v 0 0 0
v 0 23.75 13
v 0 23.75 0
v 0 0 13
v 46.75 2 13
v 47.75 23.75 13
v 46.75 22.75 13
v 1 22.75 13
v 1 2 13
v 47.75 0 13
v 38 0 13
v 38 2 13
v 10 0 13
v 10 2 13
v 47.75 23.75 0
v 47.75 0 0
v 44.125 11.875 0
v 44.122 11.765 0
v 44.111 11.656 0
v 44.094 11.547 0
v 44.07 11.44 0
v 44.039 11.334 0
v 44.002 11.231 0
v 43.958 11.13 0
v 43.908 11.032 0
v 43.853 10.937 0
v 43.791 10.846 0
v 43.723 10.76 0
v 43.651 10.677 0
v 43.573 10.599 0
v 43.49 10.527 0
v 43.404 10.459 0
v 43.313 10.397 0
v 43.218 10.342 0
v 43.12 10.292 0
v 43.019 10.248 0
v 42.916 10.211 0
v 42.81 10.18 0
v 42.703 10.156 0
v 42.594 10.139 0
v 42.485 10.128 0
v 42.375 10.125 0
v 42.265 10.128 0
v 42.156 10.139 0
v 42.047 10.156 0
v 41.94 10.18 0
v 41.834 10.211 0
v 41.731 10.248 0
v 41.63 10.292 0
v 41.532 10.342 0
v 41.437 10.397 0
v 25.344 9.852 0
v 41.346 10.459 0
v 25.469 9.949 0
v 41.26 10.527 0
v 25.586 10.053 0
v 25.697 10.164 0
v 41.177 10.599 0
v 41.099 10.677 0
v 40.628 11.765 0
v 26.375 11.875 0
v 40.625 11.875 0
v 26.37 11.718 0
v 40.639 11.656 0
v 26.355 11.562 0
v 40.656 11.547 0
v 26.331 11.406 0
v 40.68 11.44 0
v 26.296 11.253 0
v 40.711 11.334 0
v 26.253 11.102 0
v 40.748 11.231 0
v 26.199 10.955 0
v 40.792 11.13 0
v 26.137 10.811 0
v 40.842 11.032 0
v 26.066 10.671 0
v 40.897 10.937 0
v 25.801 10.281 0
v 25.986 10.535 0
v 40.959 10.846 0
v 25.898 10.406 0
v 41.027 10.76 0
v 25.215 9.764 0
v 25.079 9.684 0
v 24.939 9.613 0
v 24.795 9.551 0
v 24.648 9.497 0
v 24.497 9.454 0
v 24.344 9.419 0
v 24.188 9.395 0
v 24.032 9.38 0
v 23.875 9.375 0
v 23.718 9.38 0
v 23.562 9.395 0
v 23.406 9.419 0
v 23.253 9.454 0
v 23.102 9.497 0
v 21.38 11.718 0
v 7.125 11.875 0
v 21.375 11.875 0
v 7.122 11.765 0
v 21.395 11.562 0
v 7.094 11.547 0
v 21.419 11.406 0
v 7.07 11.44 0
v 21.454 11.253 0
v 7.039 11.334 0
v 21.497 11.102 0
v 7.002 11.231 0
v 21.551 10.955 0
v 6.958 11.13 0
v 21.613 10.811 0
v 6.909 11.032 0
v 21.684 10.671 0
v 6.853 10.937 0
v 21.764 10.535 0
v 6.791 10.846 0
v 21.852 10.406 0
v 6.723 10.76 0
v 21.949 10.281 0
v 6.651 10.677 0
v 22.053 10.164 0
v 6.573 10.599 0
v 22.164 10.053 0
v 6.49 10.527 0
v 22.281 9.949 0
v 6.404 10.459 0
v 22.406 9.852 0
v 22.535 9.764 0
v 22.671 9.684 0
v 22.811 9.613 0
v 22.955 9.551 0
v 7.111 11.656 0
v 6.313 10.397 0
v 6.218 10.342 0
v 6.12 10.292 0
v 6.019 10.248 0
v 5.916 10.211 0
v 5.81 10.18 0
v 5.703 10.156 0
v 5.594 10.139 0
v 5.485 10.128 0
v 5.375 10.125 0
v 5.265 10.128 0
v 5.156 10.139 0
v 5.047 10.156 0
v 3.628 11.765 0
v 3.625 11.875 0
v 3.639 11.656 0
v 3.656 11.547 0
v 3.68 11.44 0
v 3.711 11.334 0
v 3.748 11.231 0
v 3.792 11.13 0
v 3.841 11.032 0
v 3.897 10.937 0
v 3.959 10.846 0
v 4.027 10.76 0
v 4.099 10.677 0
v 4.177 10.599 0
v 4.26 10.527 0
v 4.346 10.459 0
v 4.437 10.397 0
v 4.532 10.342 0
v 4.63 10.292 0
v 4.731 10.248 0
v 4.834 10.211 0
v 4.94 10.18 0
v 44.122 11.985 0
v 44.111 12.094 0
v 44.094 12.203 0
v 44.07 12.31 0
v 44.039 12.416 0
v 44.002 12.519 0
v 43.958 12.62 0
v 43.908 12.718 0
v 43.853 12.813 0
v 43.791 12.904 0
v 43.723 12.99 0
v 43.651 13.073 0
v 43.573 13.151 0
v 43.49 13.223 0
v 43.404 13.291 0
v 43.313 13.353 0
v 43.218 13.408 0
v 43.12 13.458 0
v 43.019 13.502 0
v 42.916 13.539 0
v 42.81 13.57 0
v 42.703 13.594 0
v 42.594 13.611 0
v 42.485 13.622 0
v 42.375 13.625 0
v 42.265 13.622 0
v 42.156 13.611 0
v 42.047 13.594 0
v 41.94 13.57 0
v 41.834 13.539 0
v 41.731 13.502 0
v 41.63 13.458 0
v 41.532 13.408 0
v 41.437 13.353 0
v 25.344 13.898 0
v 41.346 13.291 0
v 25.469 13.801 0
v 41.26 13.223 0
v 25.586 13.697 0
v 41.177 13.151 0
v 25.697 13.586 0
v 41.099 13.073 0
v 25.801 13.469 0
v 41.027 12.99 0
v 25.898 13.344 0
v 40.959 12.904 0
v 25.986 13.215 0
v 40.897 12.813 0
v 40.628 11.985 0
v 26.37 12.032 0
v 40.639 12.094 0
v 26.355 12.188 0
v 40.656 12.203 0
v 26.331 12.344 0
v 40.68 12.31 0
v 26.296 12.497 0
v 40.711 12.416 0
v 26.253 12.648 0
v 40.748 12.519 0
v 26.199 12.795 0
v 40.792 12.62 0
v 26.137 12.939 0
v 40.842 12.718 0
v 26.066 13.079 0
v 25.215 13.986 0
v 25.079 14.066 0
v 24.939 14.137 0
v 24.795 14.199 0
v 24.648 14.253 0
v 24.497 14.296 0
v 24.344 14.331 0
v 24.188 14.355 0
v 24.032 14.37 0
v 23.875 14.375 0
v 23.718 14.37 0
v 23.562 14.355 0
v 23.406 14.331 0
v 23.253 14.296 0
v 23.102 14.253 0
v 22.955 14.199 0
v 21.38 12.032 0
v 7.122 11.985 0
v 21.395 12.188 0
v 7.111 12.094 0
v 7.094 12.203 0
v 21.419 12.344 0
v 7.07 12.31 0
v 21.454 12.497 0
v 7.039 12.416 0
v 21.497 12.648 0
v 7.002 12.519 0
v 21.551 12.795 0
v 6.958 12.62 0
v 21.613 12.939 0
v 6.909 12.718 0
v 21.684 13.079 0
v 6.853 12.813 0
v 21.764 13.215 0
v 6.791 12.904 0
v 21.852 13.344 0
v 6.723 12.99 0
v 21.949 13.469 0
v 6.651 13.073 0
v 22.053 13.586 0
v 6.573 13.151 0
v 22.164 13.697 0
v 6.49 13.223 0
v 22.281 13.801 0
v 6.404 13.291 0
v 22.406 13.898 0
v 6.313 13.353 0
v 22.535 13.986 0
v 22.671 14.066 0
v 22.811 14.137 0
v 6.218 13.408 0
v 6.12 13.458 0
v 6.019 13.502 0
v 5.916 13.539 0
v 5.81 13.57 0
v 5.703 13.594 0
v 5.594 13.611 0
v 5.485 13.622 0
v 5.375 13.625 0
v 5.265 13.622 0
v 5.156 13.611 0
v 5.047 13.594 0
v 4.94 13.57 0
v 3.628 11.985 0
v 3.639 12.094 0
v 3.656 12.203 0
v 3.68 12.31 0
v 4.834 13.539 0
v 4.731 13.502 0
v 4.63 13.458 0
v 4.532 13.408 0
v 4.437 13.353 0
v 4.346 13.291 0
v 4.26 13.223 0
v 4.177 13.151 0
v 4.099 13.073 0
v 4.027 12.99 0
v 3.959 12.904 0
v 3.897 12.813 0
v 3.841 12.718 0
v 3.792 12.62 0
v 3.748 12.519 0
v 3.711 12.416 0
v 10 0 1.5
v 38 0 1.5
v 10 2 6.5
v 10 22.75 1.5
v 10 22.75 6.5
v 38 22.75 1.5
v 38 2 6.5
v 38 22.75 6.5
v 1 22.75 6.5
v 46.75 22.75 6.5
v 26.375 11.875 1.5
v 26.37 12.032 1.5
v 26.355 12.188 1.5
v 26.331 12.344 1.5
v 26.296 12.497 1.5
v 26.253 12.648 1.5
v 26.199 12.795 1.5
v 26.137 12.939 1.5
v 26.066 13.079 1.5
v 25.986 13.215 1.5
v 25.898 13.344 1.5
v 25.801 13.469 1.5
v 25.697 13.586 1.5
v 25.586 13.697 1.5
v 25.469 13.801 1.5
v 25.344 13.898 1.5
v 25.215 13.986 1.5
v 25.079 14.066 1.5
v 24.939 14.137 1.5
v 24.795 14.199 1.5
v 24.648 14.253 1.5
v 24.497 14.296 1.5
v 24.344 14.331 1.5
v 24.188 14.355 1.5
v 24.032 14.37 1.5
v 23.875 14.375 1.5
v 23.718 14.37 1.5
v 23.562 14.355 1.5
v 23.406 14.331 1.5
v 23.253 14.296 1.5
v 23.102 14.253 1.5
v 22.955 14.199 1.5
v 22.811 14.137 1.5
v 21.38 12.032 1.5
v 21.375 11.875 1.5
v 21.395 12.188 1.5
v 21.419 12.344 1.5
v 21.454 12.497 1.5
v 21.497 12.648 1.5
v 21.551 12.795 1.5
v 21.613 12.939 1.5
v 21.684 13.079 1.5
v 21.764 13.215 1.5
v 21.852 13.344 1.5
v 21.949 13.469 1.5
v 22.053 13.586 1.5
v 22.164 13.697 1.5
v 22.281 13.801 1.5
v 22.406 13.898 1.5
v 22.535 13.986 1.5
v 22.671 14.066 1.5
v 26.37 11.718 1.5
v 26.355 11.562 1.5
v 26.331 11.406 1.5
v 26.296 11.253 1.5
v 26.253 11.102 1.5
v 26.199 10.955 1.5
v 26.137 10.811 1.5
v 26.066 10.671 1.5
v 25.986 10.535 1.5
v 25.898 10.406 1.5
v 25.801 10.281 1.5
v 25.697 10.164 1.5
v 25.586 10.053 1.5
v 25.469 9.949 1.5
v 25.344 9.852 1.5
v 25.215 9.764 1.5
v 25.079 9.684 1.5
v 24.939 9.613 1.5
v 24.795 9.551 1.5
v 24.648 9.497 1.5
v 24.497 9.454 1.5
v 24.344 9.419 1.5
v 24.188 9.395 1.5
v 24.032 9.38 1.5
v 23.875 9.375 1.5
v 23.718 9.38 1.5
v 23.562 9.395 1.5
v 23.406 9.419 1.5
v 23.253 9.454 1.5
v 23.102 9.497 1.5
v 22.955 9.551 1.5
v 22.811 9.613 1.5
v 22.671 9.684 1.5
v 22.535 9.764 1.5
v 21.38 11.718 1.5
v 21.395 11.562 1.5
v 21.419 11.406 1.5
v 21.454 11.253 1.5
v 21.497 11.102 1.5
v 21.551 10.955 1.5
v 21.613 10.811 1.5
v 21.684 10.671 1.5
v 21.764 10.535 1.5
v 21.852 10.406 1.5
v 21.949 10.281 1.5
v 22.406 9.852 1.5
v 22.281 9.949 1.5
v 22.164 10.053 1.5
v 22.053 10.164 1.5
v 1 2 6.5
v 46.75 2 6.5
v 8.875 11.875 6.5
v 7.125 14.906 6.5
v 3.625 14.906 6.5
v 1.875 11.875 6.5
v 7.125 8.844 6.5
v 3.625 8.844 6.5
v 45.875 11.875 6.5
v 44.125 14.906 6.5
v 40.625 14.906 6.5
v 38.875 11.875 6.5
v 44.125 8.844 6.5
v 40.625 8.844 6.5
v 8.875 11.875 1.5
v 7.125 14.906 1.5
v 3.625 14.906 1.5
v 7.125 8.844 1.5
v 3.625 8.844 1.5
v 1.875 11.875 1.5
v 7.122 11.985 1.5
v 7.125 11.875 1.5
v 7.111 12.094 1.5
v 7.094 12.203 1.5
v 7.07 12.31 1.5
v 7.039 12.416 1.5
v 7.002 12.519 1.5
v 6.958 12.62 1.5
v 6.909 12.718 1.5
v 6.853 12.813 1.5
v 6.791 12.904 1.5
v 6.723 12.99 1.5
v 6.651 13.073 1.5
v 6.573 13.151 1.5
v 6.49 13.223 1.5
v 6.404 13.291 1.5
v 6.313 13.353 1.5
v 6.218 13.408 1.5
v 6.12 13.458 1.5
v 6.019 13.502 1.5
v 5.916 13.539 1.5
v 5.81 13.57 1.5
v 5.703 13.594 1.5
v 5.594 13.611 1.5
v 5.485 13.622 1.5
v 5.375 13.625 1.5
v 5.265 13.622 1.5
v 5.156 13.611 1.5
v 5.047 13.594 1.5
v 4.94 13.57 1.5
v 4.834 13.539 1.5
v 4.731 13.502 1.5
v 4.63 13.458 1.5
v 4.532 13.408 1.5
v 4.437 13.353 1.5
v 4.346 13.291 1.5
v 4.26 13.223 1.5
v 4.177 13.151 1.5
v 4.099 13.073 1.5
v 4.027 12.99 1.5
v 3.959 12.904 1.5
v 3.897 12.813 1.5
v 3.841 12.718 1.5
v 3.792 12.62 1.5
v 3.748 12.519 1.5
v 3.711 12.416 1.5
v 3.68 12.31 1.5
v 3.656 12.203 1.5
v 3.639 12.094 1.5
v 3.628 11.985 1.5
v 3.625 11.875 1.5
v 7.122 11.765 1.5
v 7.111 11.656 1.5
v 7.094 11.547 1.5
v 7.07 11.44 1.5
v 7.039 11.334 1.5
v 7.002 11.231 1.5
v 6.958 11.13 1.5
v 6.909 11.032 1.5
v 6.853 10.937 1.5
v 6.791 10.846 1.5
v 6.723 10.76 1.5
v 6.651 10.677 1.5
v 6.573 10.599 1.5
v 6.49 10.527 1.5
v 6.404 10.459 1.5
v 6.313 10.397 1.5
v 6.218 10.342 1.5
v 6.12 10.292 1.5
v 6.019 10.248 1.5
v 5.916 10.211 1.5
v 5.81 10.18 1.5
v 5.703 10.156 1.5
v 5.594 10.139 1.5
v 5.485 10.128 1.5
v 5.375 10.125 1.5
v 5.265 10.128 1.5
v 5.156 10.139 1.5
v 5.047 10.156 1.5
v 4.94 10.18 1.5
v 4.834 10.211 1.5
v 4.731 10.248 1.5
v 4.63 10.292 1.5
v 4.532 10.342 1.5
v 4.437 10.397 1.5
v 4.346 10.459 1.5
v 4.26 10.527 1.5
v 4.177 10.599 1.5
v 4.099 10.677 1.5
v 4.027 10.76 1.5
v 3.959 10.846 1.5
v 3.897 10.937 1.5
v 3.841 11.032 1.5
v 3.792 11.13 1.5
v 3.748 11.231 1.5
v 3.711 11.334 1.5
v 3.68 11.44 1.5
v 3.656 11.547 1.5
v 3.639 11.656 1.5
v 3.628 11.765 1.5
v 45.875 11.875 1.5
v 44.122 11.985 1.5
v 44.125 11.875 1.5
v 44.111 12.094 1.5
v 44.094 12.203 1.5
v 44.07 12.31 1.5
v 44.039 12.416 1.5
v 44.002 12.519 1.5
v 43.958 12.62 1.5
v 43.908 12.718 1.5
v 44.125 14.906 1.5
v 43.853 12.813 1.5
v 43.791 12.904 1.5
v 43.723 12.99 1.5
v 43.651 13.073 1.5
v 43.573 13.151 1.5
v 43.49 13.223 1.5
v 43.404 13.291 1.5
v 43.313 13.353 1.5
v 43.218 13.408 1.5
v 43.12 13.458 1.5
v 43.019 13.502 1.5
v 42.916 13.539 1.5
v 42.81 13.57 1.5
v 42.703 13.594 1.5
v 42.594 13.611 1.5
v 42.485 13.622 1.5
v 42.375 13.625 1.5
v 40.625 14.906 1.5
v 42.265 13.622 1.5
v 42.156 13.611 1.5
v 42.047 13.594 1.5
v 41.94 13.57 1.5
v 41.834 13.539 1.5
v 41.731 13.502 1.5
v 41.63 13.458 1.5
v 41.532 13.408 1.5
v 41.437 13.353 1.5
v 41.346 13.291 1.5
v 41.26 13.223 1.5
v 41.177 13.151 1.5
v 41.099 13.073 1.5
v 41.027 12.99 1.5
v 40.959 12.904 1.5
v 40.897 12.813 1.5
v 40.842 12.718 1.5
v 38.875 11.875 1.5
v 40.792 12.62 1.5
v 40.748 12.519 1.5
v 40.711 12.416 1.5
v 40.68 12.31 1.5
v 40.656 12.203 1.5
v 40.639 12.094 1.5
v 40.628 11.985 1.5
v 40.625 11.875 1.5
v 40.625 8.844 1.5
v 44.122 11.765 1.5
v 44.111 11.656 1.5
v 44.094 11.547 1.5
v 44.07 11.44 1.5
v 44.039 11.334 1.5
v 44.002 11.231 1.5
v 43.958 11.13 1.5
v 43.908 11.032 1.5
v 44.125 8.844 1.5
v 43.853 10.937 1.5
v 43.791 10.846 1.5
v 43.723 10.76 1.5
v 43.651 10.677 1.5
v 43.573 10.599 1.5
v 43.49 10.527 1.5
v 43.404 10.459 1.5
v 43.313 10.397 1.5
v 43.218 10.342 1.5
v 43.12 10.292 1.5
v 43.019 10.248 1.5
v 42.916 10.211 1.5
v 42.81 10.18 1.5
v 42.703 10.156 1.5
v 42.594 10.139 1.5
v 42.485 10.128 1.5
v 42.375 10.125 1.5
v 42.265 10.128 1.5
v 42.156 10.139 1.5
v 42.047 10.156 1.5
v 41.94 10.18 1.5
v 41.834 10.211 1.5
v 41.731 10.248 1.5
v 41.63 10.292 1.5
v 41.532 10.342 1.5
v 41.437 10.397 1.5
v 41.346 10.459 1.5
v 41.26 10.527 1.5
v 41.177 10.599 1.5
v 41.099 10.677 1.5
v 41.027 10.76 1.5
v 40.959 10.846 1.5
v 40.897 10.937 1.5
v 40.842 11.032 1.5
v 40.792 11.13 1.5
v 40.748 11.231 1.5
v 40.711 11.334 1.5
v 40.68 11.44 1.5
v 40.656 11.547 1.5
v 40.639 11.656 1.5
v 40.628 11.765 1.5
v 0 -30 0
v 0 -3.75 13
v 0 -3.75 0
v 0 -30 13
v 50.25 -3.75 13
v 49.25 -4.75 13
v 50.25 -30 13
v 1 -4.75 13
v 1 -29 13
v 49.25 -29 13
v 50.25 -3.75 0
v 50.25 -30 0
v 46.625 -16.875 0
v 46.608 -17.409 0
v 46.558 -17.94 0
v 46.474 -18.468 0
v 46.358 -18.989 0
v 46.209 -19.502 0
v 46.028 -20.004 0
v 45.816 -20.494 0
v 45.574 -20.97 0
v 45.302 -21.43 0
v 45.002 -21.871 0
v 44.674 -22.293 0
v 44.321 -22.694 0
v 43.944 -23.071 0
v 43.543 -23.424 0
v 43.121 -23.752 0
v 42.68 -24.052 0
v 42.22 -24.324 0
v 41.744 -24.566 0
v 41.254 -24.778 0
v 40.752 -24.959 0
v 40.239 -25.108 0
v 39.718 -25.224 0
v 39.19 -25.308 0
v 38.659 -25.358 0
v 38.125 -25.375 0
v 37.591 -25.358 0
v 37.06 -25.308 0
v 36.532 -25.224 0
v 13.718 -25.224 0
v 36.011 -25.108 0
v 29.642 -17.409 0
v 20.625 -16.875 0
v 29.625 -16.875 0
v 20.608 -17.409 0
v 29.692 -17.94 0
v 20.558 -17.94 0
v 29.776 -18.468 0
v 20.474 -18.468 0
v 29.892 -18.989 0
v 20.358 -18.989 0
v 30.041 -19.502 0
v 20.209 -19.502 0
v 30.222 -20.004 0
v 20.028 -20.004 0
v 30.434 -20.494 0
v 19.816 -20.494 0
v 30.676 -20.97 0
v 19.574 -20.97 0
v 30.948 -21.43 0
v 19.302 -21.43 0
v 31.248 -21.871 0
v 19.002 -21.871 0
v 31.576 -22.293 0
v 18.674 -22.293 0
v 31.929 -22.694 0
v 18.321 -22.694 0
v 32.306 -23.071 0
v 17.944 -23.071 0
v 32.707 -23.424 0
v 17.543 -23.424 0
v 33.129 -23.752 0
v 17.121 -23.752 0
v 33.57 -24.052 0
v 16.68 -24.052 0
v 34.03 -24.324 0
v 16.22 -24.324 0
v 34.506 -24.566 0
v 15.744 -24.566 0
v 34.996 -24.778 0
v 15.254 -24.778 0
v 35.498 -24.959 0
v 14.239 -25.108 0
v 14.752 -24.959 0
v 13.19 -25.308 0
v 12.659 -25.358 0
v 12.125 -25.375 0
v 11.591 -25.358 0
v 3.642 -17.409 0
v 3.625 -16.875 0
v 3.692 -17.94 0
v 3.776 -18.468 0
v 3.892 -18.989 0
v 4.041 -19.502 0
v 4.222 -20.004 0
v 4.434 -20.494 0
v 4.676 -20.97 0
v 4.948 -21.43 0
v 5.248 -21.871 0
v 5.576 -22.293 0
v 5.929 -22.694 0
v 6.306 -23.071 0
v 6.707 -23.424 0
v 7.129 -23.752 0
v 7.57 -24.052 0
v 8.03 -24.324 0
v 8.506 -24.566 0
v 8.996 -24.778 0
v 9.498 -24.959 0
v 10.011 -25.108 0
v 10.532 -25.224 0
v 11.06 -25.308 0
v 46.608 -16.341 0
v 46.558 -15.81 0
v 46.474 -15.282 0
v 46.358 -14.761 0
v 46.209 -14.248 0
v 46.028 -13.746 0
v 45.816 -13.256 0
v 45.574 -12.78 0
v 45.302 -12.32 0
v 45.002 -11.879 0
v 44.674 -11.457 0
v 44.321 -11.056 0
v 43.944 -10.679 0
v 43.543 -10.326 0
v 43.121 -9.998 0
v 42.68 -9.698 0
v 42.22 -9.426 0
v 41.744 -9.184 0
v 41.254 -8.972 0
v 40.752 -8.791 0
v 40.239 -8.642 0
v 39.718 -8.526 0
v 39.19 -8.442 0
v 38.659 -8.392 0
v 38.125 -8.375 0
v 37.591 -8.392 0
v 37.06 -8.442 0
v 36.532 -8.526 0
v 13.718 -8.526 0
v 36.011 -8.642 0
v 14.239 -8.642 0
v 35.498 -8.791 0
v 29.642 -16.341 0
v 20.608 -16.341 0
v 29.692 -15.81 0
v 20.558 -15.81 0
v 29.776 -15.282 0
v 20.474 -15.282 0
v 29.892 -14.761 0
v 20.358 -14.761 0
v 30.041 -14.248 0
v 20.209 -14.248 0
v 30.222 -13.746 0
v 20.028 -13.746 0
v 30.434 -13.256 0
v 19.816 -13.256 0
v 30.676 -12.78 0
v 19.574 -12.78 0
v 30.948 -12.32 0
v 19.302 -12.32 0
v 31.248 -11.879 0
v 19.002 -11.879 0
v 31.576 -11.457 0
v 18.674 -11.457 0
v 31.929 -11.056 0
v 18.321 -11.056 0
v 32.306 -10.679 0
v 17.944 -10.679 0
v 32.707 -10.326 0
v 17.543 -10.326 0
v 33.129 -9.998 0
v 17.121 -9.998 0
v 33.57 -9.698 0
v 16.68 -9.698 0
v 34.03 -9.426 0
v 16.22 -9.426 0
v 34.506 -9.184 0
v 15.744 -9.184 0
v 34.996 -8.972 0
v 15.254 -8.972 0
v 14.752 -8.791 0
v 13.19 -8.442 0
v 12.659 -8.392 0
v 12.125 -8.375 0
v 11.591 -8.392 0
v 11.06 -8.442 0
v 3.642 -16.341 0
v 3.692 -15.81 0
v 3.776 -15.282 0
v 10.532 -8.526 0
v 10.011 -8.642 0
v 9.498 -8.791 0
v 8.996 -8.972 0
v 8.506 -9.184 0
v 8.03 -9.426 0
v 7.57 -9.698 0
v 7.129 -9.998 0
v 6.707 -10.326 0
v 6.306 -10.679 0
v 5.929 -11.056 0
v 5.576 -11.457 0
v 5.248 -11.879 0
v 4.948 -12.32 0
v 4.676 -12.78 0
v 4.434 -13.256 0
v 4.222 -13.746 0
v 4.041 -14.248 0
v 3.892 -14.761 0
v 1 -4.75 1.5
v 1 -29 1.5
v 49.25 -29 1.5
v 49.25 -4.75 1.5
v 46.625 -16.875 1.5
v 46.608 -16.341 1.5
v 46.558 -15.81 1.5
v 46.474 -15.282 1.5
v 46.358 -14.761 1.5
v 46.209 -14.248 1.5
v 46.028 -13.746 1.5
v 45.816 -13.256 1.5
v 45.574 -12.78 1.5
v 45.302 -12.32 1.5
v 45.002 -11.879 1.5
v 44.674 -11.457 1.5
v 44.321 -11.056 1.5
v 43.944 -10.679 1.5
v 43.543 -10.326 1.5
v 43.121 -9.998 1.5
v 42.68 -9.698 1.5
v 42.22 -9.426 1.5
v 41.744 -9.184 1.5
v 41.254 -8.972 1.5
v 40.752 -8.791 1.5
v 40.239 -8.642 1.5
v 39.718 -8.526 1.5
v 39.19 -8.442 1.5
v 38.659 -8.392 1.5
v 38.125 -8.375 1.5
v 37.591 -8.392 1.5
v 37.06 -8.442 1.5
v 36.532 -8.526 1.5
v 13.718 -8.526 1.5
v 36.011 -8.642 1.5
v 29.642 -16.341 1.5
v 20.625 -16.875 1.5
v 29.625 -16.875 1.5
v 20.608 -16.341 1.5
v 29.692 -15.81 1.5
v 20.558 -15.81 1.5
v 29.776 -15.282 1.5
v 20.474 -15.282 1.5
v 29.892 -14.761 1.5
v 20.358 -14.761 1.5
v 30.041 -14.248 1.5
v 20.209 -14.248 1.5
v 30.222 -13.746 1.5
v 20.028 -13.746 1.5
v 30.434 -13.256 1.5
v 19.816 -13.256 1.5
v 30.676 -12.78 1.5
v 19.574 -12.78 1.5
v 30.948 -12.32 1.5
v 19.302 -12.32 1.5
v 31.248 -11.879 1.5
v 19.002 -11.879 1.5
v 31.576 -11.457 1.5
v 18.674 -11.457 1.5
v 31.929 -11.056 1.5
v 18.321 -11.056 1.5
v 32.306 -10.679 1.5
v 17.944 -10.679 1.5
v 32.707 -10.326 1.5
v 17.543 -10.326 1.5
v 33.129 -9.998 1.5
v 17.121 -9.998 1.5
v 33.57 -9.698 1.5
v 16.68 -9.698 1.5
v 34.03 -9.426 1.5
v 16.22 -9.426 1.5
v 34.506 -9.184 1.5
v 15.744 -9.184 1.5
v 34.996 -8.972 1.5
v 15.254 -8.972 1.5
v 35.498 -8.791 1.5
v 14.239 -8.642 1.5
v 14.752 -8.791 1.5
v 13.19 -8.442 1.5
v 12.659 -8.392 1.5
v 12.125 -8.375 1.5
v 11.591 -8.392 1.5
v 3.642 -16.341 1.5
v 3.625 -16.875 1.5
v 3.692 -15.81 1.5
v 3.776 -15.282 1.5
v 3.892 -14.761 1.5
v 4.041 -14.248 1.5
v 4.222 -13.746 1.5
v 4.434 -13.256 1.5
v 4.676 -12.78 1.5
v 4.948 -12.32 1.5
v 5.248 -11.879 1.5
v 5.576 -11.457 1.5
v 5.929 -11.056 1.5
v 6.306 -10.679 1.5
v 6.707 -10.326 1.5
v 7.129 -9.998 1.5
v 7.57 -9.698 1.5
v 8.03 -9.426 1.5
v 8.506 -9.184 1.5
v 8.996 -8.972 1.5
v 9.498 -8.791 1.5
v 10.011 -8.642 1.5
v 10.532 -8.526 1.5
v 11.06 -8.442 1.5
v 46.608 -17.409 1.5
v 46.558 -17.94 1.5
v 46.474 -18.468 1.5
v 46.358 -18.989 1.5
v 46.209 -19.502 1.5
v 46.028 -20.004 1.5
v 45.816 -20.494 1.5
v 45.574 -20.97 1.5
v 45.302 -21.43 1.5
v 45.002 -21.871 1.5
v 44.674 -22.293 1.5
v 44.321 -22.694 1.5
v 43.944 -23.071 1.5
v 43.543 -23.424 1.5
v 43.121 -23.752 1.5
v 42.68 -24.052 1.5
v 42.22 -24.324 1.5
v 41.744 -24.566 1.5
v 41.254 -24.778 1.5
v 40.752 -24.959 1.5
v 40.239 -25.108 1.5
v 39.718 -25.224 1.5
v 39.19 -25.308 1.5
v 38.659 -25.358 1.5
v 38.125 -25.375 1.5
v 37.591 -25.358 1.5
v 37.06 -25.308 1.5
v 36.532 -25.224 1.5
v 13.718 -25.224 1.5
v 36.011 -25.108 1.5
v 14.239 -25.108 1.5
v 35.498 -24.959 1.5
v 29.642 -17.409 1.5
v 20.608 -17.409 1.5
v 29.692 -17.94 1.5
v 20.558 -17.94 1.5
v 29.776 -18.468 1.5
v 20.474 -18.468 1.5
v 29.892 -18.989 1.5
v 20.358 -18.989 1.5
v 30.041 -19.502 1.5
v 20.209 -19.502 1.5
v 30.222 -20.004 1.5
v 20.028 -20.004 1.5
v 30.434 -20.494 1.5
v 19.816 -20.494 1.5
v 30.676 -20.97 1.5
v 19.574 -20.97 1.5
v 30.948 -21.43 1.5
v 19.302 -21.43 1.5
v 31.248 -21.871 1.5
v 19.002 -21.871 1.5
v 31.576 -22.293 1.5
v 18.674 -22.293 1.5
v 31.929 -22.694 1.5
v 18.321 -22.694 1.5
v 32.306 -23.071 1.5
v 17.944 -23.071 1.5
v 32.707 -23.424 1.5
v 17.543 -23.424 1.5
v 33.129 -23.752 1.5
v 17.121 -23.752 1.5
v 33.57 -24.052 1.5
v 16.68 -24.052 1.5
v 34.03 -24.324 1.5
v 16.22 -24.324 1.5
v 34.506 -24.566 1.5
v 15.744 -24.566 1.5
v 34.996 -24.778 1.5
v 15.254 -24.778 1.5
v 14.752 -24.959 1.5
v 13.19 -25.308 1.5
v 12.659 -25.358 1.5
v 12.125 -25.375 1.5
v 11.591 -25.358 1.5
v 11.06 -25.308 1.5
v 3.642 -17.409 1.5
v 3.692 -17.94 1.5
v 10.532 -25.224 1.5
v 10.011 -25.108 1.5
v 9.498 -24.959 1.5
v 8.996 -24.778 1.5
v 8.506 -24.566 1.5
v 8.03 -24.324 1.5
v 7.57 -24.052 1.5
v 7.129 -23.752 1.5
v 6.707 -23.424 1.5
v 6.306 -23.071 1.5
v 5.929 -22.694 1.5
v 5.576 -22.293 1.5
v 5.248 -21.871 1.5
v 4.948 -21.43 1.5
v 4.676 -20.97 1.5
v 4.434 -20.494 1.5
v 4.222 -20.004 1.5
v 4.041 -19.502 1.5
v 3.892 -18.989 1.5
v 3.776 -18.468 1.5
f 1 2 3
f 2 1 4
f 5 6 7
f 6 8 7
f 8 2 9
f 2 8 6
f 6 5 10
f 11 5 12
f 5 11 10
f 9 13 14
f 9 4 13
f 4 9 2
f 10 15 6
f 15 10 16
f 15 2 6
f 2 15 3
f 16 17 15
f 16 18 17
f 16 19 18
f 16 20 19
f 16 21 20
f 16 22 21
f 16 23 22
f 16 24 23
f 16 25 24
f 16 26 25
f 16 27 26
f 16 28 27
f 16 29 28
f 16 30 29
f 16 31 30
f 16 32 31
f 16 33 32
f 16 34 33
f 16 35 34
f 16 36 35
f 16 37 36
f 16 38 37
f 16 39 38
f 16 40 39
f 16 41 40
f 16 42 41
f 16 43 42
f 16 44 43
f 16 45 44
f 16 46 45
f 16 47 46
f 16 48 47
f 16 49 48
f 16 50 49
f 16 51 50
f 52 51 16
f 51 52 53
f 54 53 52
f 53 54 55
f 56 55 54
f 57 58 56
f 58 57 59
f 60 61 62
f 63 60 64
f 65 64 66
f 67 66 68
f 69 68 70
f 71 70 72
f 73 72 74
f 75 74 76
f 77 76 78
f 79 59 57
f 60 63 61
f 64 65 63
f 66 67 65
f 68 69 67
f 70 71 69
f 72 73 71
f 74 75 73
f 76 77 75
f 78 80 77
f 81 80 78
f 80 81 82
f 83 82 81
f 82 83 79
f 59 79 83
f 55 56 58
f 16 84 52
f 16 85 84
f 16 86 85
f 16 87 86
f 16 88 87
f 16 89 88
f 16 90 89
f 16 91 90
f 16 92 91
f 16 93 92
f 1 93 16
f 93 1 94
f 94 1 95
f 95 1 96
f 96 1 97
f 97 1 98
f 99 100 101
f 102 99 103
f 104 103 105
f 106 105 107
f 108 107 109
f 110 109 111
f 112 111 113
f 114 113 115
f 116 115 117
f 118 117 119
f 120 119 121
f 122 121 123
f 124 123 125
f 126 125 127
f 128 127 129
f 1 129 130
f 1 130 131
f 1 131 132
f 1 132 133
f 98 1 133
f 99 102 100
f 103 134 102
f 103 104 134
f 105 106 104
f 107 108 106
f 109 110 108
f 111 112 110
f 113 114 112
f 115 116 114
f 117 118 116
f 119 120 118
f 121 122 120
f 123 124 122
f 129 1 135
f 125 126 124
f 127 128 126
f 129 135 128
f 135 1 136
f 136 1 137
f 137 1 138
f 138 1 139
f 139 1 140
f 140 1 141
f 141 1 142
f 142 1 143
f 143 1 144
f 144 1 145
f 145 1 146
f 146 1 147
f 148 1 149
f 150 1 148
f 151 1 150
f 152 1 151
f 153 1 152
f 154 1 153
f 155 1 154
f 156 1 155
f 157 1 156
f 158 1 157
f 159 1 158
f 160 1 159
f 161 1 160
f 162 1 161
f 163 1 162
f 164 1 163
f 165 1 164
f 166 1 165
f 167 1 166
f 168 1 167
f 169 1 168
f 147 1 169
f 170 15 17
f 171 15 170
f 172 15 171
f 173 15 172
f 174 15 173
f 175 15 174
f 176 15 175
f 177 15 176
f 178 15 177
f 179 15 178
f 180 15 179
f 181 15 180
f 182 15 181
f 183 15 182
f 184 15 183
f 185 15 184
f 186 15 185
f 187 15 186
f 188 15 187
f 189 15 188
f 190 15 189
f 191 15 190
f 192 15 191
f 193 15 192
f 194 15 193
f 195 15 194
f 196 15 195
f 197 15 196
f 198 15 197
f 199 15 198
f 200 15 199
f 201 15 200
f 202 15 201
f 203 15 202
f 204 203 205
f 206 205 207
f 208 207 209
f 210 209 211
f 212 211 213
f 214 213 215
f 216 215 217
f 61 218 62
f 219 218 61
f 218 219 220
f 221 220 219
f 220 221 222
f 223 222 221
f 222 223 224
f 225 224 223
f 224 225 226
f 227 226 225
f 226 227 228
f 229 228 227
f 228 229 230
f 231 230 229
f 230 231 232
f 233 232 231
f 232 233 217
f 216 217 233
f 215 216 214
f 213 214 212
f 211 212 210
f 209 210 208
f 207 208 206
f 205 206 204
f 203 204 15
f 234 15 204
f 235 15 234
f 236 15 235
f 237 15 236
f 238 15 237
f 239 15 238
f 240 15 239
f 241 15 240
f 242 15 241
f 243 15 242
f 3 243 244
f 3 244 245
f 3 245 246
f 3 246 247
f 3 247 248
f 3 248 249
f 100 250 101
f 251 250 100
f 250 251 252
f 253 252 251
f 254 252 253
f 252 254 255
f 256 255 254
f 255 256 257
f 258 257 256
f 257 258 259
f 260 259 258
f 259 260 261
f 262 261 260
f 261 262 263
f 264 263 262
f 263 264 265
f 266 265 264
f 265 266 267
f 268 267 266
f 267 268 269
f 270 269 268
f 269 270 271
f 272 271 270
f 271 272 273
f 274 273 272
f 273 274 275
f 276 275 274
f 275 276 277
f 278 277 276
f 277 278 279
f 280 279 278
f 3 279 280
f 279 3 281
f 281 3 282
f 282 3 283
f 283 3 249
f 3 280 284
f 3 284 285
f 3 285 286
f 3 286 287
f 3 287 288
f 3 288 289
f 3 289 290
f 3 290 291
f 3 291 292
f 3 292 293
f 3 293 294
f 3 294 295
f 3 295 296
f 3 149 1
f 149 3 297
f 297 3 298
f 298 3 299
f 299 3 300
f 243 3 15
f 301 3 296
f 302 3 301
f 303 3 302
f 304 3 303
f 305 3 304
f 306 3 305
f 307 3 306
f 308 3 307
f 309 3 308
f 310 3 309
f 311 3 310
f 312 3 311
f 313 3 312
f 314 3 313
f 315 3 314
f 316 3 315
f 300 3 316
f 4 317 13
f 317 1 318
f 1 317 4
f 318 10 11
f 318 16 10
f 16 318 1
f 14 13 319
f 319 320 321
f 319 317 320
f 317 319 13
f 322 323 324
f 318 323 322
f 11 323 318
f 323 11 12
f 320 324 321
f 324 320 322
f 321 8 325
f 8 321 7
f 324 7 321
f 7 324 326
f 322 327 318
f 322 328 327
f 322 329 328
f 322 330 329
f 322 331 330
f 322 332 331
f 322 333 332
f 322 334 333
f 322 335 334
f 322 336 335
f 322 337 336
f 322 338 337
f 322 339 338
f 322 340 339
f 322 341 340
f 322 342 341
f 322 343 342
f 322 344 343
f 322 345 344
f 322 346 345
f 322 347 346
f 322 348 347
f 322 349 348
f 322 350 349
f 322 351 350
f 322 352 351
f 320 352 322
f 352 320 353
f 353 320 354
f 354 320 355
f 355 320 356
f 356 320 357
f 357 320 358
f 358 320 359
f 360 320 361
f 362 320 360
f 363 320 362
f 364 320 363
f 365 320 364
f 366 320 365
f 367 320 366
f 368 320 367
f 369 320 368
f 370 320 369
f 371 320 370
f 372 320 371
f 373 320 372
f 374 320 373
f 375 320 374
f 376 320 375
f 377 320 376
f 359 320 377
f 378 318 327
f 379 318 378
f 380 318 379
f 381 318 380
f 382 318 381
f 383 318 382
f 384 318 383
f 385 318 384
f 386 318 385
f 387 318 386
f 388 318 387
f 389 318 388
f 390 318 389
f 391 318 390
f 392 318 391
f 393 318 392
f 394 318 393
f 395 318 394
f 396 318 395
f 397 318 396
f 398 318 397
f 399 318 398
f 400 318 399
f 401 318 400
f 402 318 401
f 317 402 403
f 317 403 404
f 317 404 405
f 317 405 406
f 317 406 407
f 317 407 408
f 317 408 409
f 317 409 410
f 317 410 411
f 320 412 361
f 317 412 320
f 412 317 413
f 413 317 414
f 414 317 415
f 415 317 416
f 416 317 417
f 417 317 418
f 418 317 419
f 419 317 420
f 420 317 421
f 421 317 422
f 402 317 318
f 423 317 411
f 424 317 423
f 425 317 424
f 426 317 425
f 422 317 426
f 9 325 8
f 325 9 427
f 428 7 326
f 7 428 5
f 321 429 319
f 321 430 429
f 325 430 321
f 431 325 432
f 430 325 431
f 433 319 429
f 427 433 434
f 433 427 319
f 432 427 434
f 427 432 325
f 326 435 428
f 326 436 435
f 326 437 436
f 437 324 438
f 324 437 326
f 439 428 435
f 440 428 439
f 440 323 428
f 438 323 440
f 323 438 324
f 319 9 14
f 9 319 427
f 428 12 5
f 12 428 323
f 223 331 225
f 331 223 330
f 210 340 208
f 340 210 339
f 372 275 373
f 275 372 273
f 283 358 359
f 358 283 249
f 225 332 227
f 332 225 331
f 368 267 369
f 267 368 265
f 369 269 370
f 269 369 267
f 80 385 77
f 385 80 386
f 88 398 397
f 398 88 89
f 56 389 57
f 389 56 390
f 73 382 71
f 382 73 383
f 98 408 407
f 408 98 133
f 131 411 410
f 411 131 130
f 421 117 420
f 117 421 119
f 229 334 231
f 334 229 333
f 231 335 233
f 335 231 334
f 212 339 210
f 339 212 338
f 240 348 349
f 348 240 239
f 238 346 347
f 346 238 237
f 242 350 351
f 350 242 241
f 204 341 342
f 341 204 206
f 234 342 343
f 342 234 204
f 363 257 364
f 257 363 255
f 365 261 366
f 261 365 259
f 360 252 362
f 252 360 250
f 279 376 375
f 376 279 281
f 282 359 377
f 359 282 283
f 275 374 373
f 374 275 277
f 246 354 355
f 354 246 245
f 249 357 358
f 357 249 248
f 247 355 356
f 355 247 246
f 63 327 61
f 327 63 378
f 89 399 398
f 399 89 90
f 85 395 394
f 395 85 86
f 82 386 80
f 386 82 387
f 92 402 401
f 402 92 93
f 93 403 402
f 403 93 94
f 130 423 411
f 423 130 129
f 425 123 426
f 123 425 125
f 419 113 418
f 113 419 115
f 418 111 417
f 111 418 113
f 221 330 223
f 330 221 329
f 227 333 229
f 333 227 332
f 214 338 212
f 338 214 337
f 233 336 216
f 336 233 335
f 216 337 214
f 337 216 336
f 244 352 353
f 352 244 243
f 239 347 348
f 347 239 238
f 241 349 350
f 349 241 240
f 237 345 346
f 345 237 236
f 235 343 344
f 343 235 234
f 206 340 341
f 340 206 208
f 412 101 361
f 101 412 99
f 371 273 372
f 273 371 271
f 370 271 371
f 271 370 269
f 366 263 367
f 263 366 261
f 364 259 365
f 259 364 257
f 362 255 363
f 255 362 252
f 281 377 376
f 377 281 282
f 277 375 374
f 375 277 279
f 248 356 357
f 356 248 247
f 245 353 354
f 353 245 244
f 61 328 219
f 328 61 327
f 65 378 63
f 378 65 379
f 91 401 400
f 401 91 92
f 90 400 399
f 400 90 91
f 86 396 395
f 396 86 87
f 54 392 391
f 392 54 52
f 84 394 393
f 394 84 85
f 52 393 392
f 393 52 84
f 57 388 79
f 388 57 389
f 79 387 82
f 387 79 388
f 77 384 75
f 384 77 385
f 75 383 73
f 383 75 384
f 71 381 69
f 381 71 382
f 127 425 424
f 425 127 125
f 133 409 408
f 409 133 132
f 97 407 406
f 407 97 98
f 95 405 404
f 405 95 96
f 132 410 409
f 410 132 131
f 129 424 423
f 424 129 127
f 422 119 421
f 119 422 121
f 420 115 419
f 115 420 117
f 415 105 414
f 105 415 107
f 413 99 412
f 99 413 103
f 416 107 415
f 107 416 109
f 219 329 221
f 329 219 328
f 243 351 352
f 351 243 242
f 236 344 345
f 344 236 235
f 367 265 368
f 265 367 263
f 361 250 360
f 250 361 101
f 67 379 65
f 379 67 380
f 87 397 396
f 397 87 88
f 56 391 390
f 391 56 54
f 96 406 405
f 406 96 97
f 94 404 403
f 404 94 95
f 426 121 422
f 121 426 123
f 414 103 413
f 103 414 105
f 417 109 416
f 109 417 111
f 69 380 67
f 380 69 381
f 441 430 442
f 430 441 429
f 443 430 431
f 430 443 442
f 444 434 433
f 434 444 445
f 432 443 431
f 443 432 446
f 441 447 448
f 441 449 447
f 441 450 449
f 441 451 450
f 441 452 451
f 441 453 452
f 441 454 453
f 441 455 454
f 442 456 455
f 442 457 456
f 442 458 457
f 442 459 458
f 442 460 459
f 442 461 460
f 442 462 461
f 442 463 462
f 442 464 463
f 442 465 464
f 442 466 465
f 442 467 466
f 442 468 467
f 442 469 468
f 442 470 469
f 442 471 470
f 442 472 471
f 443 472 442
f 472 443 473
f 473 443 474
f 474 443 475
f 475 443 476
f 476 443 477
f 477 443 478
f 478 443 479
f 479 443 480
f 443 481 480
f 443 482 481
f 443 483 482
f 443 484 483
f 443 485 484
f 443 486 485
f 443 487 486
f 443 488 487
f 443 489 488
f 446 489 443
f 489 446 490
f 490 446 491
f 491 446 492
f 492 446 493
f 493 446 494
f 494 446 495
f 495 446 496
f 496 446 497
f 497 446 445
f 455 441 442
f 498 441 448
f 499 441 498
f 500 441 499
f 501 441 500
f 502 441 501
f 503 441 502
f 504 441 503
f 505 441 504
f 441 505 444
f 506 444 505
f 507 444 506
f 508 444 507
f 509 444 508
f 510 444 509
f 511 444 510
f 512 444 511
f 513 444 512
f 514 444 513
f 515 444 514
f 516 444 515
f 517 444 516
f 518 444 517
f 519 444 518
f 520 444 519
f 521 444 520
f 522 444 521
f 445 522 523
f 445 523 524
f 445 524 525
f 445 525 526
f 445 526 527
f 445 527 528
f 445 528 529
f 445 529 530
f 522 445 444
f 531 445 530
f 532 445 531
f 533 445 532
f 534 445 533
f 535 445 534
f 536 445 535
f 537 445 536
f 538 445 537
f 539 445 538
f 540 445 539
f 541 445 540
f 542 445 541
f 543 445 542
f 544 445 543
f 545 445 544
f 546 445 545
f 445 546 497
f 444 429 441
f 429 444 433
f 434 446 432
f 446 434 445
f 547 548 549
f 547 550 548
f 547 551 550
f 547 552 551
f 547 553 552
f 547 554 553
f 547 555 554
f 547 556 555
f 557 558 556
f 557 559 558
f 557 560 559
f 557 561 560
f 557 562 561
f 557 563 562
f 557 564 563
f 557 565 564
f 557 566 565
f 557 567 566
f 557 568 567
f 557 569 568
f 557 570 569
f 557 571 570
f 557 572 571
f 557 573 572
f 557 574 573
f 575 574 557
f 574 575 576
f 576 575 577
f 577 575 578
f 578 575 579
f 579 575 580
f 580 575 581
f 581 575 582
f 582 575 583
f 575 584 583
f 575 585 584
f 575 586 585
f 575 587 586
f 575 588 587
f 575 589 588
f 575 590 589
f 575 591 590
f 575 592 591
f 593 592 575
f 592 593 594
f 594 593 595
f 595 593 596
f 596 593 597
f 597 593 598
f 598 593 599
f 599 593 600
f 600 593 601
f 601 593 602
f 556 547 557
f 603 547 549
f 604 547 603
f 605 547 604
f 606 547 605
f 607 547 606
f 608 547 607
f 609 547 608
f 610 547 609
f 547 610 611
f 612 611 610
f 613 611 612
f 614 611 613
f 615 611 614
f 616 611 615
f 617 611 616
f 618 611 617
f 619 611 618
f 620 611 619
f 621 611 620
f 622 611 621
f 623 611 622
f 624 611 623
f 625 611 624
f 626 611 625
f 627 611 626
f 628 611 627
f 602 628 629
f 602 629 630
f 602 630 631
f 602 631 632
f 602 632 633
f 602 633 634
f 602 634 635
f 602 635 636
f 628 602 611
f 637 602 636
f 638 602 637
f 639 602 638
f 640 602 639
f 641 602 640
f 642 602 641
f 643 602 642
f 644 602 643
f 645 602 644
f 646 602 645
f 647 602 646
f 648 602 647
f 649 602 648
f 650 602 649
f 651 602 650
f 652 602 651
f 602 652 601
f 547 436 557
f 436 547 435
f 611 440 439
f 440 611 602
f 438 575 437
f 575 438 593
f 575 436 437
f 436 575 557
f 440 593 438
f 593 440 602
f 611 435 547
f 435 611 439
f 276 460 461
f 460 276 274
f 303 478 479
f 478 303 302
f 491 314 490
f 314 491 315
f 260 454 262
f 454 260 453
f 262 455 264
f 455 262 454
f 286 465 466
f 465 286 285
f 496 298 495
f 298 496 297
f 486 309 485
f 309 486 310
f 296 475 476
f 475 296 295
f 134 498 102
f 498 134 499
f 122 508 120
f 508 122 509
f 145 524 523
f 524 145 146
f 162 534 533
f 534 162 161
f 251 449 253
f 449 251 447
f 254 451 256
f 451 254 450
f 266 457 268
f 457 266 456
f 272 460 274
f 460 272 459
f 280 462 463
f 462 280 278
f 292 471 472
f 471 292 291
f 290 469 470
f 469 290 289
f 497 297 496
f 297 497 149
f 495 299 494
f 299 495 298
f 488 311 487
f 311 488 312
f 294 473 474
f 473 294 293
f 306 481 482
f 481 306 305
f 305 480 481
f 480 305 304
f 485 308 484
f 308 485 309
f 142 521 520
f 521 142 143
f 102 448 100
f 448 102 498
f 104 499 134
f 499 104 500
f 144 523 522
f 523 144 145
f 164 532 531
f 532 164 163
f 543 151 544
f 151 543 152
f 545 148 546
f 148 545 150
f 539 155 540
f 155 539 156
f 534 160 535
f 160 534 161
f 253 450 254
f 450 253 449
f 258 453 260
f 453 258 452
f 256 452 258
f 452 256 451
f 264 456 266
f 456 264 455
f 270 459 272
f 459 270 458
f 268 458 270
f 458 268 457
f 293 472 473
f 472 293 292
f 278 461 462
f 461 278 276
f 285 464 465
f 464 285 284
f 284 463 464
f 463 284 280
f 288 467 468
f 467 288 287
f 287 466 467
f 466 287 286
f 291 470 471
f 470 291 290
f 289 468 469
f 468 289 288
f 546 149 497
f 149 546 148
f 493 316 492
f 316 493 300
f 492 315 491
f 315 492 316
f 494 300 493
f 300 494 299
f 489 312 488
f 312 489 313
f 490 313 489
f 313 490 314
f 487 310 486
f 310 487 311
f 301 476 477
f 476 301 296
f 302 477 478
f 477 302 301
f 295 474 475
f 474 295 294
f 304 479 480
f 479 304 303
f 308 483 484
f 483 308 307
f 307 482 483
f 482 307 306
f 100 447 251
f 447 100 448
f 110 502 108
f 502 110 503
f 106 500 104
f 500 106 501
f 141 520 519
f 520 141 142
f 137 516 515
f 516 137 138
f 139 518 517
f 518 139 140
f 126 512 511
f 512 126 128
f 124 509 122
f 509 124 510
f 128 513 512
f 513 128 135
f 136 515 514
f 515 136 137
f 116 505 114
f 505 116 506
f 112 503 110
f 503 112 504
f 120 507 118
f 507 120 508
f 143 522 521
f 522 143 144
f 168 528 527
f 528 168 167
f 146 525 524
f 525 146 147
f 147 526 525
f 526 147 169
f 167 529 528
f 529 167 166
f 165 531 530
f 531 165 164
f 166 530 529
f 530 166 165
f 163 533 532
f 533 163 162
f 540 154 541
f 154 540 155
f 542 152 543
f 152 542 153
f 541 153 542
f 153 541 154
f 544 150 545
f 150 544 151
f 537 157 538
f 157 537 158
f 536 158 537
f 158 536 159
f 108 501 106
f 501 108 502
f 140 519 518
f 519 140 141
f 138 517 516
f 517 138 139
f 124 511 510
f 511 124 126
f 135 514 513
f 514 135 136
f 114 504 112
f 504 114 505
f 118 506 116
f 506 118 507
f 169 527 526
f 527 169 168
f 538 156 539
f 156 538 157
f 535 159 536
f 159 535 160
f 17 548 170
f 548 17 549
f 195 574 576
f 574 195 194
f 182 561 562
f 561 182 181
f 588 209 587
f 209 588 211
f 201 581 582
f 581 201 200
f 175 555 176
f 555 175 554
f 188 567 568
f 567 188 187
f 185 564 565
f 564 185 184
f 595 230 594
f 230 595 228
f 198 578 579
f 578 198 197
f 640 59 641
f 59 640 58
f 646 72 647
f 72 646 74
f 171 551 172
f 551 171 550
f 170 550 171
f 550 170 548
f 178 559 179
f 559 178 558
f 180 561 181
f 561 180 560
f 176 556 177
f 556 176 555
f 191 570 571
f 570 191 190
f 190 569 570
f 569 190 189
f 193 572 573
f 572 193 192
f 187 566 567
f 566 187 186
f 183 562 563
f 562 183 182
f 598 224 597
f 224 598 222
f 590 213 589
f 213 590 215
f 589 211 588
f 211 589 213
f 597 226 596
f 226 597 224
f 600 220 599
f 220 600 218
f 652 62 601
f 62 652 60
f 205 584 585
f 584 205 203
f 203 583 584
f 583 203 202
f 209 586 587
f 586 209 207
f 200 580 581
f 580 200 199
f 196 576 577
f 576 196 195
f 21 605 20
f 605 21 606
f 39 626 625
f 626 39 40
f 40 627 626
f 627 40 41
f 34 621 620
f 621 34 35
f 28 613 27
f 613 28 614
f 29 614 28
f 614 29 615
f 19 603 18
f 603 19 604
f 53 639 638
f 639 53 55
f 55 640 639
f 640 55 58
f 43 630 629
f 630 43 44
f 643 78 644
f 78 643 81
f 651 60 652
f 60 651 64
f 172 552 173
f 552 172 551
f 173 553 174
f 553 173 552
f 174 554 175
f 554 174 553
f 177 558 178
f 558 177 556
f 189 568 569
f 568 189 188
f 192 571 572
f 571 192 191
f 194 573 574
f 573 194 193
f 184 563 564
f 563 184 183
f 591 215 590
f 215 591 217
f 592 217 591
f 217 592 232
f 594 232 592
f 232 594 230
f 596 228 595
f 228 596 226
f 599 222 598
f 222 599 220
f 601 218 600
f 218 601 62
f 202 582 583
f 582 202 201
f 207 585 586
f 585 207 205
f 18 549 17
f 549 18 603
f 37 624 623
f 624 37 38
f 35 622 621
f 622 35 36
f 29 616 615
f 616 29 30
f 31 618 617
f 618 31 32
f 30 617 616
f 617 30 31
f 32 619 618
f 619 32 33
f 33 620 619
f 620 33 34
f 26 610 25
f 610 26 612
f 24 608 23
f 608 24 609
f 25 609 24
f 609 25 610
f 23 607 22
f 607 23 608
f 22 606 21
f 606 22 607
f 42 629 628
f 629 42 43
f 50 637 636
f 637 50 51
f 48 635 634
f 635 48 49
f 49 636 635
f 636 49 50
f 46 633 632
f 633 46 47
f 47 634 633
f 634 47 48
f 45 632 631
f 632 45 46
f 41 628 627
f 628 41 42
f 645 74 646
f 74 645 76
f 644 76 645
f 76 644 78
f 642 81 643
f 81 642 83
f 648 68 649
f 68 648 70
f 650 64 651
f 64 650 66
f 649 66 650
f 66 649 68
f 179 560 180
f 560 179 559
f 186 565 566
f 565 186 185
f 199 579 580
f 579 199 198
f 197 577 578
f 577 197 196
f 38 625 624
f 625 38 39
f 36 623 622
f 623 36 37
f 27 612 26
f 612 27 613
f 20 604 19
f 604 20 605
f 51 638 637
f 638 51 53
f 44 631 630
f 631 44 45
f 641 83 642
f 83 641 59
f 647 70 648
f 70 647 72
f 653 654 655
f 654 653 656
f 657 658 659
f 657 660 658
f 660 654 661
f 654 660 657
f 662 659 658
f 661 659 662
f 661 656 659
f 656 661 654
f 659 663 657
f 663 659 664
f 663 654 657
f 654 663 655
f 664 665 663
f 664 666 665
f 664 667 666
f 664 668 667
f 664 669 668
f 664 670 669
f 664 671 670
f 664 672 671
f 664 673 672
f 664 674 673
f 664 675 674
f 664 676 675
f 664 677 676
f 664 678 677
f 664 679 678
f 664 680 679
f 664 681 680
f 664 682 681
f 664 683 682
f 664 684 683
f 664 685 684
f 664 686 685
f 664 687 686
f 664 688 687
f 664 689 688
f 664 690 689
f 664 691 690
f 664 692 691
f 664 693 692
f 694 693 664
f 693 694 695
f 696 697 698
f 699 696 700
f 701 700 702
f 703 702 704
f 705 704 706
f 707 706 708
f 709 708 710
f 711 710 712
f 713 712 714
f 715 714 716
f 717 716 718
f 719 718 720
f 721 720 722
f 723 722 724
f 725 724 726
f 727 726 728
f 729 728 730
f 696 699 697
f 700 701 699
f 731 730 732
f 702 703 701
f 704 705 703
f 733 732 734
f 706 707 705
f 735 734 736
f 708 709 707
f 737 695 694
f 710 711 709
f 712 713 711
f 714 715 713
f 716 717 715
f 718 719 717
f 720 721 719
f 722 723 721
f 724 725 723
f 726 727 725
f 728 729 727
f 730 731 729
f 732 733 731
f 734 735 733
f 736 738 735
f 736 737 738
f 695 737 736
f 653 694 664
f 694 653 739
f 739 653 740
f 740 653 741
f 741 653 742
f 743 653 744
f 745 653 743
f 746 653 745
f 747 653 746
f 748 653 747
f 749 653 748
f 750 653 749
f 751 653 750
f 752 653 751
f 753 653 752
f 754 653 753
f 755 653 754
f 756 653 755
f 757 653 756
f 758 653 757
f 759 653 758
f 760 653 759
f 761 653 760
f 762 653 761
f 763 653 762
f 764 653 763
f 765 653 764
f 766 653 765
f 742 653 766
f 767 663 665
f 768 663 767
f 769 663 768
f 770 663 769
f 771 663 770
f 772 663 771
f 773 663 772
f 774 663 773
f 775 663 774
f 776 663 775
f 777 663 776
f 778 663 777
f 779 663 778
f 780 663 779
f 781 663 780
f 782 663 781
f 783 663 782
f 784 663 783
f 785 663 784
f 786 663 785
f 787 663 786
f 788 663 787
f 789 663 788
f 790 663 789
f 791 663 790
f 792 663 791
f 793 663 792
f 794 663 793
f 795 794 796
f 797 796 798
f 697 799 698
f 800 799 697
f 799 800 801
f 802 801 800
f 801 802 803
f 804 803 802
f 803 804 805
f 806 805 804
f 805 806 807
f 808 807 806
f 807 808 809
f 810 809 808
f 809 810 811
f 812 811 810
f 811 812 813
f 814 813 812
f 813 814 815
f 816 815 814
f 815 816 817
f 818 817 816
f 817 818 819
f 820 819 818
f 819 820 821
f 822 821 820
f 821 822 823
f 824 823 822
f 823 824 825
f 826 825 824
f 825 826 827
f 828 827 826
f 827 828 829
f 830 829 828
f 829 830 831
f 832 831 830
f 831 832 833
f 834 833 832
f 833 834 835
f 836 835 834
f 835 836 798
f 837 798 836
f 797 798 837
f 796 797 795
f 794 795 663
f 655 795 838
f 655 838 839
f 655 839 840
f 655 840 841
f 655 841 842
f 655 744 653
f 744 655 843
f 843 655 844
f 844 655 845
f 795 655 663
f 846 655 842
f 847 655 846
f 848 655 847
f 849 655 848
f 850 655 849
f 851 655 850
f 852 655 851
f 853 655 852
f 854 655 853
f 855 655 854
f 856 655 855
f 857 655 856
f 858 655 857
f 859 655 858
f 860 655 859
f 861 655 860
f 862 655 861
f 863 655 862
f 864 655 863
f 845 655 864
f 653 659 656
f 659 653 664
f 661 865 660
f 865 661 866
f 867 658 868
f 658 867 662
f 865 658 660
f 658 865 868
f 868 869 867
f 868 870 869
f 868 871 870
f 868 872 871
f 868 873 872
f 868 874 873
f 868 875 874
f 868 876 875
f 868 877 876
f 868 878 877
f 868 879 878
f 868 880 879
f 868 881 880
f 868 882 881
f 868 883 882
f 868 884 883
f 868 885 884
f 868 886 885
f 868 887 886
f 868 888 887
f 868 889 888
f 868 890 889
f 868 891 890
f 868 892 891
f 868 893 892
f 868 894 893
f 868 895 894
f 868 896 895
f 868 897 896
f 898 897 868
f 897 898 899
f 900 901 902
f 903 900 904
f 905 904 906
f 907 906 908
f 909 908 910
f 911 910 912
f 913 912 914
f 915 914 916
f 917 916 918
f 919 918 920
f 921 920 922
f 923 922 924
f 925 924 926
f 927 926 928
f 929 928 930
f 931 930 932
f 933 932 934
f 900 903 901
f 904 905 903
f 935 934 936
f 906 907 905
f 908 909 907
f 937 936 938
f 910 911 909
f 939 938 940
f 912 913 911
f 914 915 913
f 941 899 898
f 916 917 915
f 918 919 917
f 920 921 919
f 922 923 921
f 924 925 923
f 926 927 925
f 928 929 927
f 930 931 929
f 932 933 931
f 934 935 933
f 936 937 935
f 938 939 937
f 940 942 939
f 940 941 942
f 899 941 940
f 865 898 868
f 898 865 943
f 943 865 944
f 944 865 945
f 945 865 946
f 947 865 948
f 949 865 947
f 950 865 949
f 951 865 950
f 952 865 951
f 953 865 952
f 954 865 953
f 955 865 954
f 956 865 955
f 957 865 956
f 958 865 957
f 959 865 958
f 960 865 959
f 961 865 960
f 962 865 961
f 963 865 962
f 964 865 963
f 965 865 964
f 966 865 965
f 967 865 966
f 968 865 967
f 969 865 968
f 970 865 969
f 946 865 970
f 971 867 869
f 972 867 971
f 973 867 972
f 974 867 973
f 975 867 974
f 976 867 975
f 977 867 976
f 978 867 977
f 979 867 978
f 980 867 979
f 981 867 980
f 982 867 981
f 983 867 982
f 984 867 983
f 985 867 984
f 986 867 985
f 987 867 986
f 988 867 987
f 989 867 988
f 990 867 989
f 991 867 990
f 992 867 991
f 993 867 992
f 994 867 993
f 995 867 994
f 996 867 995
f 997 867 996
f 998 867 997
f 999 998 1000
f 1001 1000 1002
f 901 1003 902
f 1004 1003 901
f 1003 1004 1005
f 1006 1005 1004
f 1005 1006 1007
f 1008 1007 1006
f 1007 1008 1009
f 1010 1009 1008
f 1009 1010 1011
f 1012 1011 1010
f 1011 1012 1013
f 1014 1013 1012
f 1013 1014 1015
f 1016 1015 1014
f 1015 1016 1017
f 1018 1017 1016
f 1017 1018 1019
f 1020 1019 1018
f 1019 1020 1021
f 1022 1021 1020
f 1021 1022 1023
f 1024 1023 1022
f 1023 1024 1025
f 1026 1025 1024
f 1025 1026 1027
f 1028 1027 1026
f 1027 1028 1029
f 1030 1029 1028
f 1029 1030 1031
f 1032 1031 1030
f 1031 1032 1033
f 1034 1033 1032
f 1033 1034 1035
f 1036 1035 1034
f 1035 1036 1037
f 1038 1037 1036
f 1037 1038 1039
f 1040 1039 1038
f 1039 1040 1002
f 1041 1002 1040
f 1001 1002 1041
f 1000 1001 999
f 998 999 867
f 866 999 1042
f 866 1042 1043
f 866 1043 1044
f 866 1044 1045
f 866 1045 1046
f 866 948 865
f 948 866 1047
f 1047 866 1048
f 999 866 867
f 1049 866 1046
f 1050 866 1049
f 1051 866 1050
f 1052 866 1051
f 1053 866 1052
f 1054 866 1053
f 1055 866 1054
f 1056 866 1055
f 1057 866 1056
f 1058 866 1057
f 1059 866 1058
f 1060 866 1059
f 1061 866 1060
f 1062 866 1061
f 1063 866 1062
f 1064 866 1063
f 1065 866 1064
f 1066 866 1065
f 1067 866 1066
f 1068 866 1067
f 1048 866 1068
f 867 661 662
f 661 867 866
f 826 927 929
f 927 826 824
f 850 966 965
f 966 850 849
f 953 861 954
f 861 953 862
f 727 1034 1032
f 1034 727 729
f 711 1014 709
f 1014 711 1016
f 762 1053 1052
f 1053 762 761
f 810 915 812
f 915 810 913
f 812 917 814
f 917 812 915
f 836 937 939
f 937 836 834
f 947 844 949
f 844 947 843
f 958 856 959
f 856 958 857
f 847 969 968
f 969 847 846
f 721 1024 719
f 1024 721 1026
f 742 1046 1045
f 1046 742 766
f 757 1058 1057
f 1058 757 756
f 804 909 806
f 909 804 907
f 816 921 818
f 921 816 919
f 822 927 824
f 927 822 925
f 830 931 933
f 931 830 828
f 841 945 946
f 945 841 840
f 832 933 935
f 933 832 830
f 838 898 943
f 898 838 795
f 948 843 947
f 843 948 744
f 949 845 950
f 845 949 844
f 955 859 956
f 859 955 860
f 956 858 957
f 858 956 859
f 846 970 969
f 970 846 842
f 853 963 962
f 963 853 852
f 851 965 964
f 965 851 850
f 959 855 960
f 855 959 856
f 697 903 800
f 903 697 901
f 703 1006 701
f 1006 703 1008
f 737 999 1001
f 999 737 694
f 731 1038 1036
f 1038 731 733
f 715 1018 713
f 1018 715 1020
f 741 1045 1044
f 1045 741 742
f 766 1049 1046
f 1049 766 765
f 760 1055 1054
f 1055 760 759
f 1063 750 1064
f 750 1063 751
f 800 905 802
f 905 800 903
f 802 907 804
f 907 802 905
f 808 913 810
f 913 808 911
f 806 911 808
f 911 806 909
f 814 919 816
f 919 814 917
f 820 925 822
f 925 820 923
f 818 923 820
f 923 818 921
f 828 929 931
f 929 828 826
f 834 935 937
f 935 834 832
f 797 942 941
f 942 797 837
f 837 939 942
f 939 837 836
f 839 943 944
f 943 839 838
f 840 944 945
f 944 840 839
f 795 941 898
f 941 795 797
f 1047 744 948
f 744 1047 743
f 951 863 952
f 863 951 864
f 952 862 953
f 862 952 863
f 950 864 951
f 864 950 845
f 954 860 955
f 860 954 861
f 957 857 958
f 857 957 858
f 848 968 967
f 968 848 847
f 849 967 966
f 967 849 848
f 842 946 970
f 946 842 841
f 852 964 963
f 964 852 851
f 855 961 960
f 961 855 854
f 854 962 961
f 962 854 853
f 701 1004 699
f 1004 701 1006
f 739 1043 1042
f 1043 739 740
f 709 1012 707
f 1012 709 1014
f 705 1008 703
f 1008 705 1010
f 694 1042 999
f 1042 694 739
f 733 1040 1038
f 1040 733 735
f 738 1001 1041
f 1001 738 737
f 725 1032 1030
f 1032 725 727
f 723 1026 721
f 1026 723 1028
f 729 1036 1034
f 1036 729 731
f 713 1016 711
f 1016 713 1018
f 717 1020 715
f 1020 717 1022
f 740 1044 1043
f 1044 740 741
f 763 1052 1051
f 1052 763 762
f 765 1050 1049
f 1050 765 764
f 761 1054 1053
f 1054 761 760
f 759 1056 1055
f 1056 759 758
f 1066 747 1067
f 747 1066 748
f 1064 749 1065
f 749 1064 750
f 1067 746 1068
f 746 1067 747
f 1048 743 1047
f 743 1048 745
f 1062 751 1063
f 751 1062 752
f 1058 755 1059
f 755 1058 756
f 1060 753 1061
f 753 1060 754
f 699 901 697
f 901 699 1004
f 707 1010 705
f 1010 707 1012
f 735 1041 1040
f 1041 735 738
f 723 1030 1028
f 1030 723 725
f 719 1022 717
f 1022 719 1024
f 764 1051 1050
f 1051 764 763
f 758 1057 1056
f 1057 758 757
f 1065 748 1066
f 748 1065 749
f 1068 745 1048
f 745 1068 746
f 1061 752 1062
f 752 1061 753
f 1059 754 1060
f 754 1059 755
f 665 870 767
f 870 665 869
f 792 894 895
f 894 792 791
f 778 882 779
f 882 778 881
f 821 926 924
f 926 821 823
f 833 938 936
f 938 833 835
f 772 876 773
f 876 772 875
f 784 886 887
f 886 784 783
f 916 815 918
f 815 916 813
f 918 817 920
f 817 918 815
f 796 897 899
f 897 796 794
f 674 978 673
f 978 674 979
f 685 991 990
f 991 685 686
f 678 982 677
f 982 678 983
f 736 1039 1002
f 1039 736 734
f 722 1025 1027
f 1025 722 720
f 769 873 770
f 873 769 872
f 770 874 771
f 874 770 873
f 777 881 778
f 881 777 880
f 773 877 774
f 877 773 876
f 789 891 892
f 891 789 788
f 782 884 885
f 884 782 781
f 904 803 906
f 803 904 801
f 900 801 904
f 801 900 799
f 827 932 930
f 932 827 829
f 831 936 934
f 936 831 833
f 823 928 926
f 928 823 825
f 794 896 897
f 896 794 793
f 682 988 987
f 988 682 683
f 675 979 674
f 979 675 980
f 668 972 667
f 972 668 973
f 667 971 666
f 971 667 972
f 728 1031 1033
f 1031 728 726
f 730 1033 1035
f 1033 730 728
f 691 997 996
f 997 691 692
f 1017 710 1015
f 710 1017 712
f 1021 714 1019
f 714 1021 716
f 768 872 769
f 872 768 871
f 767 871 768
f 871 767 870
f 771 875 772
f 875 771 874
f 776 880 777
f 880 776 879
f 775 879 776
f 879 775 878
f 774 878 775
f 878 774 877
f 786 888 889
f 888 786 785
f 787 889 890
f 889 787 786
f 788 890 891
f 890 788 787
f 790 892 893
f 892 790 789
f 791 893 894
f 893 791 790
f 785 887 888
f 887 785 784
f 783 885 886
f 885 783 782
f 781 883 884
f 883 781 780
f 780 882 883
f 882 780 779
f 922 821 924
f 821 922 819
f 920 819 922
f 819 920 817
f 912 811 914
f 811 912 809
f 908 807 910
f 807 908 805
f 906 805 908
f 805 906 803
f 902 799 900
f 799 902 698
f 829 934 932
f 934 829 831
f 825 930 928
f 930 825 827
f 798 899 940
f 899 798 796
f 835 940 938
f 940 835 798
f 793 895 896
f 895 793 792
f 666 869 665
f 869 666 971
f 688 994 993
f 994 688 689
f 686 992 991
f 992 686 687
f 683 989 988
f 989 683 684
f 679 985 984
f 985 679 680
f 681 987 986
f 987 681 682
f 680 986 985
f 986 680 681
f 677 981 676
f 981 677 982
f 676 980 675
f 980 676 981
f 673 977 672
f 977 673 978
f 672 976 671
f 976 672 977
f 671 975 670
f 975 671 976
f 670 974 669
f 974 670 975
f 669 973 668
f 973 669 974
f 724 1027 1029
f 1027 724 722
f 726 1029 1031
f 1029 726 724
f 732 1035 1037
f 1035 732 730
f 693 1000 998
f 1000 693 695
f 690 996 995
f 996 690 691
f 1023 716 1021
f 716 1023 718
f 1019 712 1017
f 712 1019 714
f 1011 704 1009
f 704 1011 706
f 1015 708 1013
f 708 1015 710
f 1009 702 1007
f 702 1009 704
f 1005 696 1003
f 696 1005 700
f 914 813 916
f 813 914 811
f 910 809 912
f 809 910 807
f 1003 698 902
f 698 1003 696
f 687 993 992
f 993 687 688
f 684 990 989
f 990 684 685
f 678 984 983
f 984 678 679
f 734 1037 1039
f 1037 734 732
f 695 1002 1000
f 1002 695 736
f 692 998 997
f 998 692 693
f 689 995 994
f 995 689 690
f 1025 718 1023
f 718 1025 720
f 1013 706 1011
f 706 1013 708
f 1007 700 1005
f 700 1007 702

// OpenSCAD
boardDimentions = [45.75,20.75,0];

module bottomHolder() {
    bottomDimentions=[2,3,13]+boardDimentions;
    voltageDivBoard=[28,22+2,13];
    nutPos1 = [bottomDimentions[0]/2-18.5,bottomDimentions[1]/2,0];
    nutPos2 = [bottomDimentions[0]/2+18.5,bottomDimentions[1]/2,0];
    
    difference() {
        cube(bottomDimentions, center=false);
        translate([9+1,0.75-2,1.5]) cube(voltageDivBoard, center=false);
        translate([1,2,8-1.5]) cube(boardDimentions+[0,0,20], center=false);
        translate([bottomDimentions[0]/2,bottomDimentions[1]/2,9]) cylinder(d=5,h=20,center=true,$fn=100);
        translate(nutPos1+[0,0,6.5]) cylinder(d=7, h=10,center=true,$fn=6);
        translate(nutPos2+[0,0,6.5]) cylinder(d=7, h=10,center=true,$fn=6);
        translate(nutPos1) cylinder(d=3.5, h=10,center=true,$fn=100);
        translate(nutPos2) cylinder(d=3.5, h=10,center=true,$fn=100);
    }
}

module topHolder() {
    bottomDimentions=[2.5,3.5,13]+boardDimentions;
    topDimentions = bottomDimentions+[2,2,0];
    usPos1 = [topDimentions[0]/2 - (42-16)/2, topDimentions[1]/2,0];
    usPos2 = [topDimentions[0]/2 + (42-16)/2, topDimentions[1]/2,0];
    // (42-16)2
    
    difference() {
        cube(topDimentions, center=false);
        translate([1,1,1.5]) cube(bottomDimentions, center=false);
        translate(usPos1) cylinder(d=17,h=5,center=true,$fn=100);
        translate(usPos2) cylinder(d=17,h=5,center=true,$fn=100);
    }
}

bottomHolder();
translate([0, -30,0]) topHolder();
